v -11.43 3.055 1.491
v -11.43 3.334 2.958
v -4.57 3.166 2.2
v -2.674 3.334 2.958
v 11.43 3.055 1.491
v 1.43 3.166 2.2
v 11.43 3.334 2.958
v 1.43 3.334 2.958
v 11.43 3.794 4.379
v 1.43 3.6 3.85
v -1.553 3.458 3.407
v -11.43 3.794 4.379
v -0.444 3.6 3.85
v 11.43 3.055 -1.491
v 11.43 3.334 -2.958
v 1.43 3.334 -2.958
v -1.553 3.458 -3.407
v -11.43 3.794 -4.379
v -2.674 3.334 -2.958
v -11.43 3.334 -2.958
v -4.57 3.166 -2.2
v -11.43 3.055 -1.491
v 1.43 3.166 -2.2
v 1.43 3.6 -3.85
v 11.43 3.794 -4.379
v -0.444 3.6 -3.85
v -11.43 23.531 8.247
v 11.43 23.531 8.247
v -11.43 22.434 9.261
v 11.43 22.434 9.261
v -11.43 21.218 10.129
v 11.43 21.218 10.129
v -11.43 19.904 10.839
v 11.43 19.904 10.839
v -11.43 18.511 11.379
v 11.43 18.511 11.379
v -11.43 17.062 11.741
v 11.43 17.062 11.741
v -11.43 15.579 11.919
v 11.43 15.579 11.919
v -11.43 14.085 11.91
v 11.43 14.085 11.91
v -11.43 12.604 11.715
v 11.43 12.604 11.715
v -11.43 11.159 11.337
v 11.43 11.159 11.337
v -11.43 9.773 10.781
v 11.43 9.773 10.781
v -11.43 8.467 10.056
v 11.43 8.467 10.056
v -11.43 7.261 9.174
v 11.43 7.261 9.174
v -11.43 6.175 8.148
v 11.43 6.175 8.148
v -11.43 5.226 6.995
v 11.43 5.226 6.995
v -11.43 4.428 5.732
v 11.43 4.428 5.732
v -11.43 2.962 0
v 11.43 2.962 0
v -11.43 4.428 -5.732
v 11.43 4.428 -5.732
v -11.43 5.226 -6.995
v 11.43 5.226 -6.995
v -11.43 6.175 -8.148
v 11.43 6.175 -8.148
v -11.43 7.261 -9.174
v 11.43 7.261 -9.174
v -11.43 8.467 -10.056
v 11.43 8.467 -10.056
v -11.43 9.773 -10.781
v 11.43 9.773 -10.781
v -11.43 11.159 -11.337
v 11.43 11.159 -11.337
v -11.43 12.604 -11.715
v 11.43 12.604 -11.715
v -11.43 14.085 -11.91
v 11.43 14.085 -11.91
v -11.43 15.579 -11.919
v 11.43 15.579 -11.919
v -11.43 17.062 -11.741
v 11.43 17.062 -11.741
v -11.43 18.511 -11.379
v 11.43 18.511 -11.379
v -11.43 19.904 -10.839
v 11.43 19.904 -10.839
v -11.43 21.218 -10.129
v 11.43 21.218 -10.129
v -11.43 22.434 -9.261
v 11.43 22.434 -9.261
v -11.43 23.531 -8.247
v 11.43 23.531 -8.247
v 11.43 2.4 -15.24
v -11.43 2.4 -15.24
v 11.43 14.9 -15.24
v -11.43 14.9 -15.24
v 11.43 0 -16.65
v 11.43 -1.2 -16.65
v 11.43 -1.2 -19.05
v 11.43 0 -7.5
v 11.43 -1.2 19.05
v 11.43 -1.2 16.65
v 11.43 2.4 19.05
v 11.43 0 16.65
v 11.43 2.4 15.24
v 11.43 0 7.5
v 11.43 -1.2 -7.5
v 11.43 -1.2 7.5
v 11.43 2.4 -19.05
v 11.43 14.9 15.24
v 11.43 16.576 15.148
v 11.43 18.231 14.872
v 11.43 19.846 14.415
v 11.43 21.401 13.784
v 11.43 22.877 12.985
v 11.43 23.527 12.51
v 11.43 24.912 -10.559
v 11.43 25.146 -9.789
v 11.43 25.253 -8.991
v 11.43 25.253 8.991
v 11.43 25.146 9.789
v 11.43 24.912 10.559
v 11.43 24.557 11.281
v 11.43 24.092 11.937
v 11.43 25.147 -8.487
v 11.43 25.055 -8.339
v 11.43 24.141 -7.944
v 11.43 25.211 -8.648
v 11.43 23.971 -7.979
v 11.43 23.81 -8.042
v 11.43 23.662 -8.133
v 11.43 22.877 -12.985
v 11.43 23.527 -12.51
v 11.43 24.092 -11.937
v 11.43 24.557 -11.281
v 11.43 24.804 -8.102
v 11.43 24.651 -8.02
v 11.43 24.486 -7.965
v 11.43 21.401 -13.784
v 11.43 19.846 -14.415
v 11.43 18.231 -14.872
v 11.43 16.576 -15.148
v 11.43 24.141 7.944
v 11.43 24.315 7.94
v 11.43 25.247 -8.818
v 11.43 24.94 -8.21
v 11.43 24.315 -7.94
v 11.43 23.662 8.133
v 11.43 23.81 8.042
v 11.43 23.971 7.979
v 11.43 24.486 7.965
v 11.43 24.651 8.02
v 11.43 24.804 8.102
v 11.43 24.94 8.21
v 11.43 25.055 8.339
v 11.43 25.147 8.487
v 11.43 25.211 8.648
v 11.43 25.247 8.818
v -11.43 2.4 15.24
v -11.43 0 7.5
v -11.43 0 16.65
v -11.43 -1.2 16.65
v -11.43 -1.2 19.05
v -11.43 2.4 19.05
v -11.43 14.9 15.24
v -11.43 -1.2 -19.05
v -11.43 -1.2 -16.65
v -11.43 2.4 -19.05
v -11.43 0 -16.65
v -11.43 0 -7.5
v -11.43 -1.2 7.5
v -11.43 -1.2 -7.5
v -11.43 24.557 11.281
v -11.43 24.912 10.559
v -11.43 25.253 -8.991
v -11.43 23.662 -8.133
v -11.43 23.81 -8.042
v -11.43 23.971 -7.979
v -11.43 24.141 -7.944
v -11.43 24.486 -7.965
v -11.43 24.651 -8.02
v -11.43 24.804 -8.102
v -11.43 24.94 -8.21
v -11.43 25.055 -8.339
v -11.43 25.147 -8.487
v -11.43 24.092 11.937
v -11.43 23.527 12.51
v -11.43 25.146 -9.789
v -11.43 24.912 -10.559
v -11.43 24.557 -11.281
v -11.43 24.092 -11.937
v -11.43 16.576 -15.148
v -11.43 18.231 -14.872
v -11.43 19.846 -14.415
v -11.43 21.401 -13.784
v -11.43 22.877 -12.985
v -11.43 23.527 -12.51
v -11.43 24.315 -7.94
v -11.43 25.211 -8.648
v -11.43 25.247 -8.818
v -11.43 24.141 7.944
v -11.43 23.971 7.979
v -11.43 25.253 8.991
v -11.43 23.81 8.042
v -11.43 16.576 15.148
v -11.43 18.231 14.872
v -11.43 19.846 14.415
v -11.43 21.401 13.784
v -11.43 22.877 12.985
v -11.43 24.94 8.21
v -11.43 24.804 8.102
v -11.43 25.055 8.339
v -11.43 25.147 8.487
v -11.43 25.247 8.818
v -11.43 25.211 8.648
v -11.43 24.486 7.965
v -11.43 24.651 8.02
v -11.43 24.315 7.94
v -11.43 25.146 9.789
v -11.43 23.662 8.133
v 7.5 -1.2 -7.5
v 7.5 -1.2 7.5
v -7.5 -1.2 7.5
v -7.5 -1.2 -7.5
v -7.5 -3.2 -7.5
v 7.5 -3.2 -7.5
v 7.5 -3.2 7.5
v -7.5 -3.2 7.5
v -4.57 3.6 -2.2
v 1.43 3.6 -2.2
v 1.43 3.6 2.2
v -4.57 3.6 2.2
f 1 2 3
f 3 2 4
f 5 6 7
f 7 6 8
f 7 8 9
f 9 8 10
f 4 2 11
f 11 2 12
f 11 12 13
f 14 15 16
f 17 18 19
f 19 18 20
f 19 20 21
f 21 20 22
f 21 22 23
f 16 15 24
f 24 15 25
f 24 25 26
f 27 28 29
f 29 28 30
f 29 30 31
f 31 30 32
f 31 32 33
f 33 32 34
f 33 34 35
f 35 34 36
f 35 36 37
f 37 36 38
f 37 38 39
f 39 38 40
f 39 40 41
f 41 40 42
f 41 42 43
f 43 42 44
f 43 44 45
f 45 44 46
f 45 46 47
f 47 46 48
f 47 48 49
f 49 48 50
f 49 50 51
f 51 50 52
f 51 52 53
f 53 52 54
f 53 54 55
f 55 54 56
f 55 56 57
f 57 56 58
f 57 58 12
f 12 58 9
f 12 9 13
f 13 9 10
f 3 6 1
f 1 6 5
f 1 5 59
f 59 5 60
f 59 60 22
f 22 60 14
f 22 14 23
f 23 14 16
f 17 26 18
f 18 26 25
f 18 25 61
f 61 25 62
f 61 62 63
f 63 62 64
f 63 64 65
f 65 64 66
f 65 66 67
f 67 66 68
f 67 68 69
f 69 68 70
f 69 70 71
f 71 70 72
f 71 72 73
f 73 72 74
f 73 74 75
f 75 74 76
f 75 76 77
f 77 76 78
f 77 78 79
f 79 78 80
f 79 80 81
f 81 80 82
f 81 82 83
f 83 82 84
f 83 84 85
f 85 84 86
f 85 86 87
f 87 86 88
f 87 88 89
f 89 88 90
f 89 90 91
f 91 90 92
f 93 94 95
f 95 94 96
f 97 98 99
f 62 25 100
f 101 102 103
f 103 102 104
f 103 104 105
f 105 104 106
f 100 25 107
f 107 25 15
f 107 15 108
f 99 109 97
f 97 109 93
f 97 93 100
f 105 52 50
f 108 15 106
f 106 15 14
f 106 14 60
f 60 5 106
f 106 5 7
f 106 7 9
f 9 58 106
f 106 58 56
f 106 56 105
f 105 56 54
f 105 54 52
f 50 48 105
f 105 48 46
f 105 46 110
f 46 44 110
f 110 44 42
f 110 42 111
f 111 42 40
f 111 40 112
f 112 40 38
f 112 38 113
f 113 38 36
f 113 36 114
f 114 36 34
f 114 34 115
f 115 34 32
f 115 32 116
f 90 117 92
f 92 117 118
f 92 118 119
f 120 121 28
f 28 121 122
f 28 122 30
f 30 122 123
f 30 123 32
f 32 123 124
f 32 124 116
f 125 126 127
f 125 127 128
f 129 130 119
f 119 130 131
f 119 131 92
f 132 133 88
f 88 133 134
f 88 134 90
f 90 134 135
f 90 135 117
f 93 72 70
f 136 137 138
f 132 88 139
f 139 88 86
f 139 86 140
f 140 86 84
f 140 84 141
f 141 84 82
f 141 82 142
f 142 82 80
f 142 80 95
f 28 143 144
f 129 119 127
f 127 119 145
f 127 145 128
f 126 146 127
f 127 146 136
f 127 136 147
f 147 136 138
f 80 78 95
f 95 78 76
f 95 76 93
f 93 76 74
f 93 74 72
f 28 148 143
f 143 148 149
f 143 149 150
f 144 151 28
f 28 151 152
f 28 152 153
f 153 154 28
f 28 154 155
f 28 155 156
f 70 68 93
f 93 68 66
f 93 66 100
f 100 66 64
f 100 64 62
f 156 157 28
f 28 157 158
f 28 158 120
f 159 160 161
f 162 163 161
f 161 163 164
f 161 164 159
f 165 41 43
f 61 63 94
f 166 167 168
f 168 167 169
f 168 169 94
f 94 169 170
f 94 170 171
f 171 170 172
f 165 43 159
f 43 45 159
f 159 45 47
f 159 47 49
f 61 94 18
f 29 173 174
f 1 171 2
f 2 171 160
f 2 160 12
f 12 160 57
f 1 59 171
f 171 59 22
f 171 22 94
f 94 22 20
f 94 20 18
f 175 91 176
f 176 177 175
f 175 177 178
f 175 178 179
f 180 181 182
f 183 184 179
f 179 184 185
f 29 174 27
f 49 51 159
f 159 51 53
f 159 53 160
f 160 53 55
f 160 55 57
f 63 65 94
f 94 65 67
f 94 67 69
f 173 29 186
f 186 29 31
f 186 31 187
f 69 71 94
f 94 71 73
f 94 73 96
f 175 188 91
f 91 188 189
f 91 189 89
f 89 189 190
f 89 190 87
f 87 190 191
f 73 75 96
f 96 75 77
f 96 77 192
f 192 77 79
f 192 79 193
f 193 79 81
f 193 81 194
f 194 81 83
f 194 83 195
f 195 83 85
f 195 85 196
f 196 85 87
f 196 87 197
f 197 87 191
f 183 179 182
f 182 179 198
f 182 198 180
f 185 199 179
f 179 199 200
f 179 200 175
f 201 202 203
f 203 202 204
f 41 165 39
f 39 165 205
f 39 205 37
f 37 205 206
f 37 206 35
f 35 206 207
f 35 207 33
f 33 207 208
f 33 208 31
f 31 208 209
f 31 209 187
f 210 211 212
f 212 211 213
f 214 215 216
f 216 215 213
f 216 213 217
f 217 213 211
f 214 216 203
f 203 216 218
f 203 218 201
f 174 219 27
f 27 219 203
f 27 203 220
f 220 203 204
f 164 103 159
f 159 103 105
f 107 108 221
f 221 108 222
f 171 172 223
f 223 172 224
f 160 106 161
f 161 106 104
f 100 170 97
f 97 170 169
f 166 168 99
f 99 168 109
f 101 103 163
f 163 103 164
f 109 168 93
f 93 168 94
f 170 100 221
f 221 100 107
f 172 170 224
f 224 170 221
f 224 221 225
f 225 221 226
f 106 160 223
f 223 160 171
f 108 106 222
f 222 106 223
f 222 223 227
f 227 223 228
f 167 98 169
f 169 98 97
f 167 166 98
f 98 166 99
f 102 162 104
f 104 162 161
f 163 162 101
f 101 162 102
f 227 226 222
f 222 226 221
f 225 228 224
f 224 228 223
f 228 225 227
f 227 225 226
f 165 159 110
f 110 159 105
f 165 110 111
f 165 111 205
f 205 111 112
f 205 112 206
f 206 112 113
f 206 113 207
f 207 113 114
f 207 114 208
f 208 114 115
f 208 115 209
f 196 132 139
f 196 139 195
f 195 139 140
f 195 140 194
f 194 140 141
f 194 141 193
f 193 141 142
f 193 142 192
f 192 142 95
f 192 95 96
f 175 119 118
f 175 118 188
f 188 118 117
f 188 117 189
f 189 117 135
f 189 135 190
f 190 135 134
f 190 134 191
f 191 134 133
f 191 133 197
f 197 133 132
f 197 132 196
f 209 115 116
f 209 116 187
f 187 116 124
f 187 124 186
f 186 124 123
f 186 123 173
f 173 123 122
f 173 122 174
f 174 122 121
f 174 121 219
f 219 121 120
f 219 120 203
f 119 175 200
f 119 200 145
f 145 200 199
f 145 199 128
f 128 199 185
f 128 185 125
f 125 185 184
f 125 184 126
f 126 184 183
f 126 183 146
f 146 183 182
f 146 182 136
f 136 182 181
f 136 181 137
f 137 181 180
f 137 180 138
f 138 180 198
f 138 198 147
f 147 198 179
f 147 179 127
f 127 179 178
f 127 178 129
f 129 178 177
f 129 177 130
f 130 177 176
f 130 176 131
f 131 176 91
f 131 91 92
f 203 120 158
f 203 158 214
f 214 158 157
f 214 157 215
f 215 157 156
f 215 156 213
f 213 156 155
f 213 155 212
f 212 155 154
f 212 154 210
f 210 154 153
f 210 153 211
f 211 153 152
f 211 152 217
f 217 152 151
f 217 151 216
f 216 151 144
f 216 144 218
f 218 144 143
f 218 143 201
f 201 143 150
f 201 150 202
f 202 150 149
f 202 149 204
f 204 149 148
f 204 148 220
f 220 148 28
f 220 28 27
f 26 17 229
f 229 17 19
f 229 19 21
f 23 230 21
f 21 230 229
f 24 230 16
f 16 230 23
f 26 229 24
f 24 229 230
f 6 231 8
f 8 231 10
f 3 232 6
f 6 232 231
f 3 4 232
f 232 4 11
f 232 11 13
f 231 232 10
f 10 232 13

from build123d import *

# Parameters (mm, degrees)
SKETCH1_W           = 22.86
SKETCH1_H           = 38.1
BOSS_EXTRUDE1_DEPTH = 2.4
SKETCH2_W           = 22.86
SKETCH2_H           = 15
SKETCH2_H_2         = 2.4
BOSS_EXTRUDE2_DEPTH = 1.2
SKETCH3_W           = 15
SKETCH3_H           = 15
BOSS_EXTRUDE3_DEPTH = 2
SKETCH4_W           = 22.86
SKETCH4_H           = 30.48
BOSS_EXTRUDE4_DEPTH = 22.86
SKETCH5_R           = 11.938
CUT_EXTRUDE1_DEPTH  = 40.032674774
CUT_EXTRUDE2_DEPTH  = 40.032674774
FILLET1_R           = 5
FILLET2_R           = 1
BOSS_EXTRUDE5_DEPTH = 1.2


with BuildPart() as part:
    # Sketch1 → Boss-Extrude1 (new body)
    with BuildSketch(Plane(origin=(0, 0, 0), x_dir=(1, 0, 0), z_dir=(0, 1, 0))):
        Rectangle(SKETCH1_W, SKETCH1_H)
    extrude(amount=BOSS_EXTRUDE1_DEPTH)

    # Sketch2 → Boss-Extrude2 (add)
    with BuildSketch(Plane.XZ):
        Rectangle(SKETCH2_W, SKETCH2_H)
        with Locations((0, -17.85)):
            Rectangle(SKETCH2_W, SKETCH2_H_2)
        with Locations((0, 17.85)):
            Rectangle(SKETCH2_W, SKETCH2_H_2)
    extrude(amount=BOSS_EXTRUDE2_DEPTH)

    # Sketch3 → Boss-Extrude3 (add)
    with BuildSketch(Plane.XZ.offset(1.2)):
        Rectangle(SKETCH3_W, SKETCH3_H)
    extrude(amount=BOSS_EXTRUDE3_DEPTH)

    # Sketch4 → Boss-Extrude4 (add)
    with BuildSketch(Plane(origin=(0, 2.4, 0), x_dir=(1, 0, 0), z_dir=(0, 1, 0))):
        Rectangle(SKETCH4_W, SKETCH4_H)
    extrude(amount=BOSS_EXTRUDE4_DEPTH)

    # Sketch5 → Cut-Extrude1 (cut, through all)
    with BuildSketch(Plane(origin=(11.43, 0, 0), x_dir=(0, 0, -1), z_dir=(1, 0, 0))):
        with Locations((0, 14.9)):
            Circle(SKETCH5_R)
    extrude(amount=-CUT_EXTRUDE1_DEPTH, mode=Mode.SUBTRACT)

    # Sketch6 → Cut-Extrude2 (cut, through all)
    with BuildSketch(Plane(origin=(11.43, 0, 0), x_dir=(0, 0, -1), z_dir=(1, 0, 0))):
        with BuildLine():
            Line((-15.24, 25.26), (-11.177119486, 25.26))
            ThreePointArc((-11.177119486, 25.26), (-14.187968511, 20.464094672), (-15.24, 14.9))
            Line((-15.24, 14.9), (-15.24, 25.26))
        make_face()
        with BuildLine():
            Line((15.24, 14.9), (15.24, 25.26))
            Line((15.24, 25.26), (11.177119486, 25.26))
            ThreePointArc((11.177119486, 25.26), (14.187968511, 20.464094672), (15.24, 14.9))
        make_face()
    extrude(amount=-CUT_EXTRUDE2_DEPTH, mode=Mode.SUBTRACT)

    # Fillet1
    fillet1_edges = [part.edges().sort_by_distance(p)[0] for p in [
        (0, 25.26, -11.177119486),
        (0, 25.26, 11.177119486),
    ]]
    fillet(fillet1_edges, radius=FILLET1_R)

    # Fillet2
    fillet2_edges = [part.edges().sort_by_distance(p)[0] for p in [
        (0, 25.26, 5.93179939),
        (0, 25.26, -5.93179939),
    ]]
    fillet(fillet2_edges, radius=FILLET2_R)

    # Sketch7 → Boss-Extrude5 (add)
    with BuildSketch(Plane(origin=(0, 2.4, 0), x_dir=(1, 0, 0), z_dir=(0, 1, 0))):
        Polygon((-4.57, 2.2), (1.43, 2.2), (1.43, 4.6), align=None)
        Polygon((1.43, -4.6), (-4.57, -2.2), (1.43, -2.2), align=None)
    extrude(amount=BOSS_EXTRUDE5_DEPTH)


solid = part.part
